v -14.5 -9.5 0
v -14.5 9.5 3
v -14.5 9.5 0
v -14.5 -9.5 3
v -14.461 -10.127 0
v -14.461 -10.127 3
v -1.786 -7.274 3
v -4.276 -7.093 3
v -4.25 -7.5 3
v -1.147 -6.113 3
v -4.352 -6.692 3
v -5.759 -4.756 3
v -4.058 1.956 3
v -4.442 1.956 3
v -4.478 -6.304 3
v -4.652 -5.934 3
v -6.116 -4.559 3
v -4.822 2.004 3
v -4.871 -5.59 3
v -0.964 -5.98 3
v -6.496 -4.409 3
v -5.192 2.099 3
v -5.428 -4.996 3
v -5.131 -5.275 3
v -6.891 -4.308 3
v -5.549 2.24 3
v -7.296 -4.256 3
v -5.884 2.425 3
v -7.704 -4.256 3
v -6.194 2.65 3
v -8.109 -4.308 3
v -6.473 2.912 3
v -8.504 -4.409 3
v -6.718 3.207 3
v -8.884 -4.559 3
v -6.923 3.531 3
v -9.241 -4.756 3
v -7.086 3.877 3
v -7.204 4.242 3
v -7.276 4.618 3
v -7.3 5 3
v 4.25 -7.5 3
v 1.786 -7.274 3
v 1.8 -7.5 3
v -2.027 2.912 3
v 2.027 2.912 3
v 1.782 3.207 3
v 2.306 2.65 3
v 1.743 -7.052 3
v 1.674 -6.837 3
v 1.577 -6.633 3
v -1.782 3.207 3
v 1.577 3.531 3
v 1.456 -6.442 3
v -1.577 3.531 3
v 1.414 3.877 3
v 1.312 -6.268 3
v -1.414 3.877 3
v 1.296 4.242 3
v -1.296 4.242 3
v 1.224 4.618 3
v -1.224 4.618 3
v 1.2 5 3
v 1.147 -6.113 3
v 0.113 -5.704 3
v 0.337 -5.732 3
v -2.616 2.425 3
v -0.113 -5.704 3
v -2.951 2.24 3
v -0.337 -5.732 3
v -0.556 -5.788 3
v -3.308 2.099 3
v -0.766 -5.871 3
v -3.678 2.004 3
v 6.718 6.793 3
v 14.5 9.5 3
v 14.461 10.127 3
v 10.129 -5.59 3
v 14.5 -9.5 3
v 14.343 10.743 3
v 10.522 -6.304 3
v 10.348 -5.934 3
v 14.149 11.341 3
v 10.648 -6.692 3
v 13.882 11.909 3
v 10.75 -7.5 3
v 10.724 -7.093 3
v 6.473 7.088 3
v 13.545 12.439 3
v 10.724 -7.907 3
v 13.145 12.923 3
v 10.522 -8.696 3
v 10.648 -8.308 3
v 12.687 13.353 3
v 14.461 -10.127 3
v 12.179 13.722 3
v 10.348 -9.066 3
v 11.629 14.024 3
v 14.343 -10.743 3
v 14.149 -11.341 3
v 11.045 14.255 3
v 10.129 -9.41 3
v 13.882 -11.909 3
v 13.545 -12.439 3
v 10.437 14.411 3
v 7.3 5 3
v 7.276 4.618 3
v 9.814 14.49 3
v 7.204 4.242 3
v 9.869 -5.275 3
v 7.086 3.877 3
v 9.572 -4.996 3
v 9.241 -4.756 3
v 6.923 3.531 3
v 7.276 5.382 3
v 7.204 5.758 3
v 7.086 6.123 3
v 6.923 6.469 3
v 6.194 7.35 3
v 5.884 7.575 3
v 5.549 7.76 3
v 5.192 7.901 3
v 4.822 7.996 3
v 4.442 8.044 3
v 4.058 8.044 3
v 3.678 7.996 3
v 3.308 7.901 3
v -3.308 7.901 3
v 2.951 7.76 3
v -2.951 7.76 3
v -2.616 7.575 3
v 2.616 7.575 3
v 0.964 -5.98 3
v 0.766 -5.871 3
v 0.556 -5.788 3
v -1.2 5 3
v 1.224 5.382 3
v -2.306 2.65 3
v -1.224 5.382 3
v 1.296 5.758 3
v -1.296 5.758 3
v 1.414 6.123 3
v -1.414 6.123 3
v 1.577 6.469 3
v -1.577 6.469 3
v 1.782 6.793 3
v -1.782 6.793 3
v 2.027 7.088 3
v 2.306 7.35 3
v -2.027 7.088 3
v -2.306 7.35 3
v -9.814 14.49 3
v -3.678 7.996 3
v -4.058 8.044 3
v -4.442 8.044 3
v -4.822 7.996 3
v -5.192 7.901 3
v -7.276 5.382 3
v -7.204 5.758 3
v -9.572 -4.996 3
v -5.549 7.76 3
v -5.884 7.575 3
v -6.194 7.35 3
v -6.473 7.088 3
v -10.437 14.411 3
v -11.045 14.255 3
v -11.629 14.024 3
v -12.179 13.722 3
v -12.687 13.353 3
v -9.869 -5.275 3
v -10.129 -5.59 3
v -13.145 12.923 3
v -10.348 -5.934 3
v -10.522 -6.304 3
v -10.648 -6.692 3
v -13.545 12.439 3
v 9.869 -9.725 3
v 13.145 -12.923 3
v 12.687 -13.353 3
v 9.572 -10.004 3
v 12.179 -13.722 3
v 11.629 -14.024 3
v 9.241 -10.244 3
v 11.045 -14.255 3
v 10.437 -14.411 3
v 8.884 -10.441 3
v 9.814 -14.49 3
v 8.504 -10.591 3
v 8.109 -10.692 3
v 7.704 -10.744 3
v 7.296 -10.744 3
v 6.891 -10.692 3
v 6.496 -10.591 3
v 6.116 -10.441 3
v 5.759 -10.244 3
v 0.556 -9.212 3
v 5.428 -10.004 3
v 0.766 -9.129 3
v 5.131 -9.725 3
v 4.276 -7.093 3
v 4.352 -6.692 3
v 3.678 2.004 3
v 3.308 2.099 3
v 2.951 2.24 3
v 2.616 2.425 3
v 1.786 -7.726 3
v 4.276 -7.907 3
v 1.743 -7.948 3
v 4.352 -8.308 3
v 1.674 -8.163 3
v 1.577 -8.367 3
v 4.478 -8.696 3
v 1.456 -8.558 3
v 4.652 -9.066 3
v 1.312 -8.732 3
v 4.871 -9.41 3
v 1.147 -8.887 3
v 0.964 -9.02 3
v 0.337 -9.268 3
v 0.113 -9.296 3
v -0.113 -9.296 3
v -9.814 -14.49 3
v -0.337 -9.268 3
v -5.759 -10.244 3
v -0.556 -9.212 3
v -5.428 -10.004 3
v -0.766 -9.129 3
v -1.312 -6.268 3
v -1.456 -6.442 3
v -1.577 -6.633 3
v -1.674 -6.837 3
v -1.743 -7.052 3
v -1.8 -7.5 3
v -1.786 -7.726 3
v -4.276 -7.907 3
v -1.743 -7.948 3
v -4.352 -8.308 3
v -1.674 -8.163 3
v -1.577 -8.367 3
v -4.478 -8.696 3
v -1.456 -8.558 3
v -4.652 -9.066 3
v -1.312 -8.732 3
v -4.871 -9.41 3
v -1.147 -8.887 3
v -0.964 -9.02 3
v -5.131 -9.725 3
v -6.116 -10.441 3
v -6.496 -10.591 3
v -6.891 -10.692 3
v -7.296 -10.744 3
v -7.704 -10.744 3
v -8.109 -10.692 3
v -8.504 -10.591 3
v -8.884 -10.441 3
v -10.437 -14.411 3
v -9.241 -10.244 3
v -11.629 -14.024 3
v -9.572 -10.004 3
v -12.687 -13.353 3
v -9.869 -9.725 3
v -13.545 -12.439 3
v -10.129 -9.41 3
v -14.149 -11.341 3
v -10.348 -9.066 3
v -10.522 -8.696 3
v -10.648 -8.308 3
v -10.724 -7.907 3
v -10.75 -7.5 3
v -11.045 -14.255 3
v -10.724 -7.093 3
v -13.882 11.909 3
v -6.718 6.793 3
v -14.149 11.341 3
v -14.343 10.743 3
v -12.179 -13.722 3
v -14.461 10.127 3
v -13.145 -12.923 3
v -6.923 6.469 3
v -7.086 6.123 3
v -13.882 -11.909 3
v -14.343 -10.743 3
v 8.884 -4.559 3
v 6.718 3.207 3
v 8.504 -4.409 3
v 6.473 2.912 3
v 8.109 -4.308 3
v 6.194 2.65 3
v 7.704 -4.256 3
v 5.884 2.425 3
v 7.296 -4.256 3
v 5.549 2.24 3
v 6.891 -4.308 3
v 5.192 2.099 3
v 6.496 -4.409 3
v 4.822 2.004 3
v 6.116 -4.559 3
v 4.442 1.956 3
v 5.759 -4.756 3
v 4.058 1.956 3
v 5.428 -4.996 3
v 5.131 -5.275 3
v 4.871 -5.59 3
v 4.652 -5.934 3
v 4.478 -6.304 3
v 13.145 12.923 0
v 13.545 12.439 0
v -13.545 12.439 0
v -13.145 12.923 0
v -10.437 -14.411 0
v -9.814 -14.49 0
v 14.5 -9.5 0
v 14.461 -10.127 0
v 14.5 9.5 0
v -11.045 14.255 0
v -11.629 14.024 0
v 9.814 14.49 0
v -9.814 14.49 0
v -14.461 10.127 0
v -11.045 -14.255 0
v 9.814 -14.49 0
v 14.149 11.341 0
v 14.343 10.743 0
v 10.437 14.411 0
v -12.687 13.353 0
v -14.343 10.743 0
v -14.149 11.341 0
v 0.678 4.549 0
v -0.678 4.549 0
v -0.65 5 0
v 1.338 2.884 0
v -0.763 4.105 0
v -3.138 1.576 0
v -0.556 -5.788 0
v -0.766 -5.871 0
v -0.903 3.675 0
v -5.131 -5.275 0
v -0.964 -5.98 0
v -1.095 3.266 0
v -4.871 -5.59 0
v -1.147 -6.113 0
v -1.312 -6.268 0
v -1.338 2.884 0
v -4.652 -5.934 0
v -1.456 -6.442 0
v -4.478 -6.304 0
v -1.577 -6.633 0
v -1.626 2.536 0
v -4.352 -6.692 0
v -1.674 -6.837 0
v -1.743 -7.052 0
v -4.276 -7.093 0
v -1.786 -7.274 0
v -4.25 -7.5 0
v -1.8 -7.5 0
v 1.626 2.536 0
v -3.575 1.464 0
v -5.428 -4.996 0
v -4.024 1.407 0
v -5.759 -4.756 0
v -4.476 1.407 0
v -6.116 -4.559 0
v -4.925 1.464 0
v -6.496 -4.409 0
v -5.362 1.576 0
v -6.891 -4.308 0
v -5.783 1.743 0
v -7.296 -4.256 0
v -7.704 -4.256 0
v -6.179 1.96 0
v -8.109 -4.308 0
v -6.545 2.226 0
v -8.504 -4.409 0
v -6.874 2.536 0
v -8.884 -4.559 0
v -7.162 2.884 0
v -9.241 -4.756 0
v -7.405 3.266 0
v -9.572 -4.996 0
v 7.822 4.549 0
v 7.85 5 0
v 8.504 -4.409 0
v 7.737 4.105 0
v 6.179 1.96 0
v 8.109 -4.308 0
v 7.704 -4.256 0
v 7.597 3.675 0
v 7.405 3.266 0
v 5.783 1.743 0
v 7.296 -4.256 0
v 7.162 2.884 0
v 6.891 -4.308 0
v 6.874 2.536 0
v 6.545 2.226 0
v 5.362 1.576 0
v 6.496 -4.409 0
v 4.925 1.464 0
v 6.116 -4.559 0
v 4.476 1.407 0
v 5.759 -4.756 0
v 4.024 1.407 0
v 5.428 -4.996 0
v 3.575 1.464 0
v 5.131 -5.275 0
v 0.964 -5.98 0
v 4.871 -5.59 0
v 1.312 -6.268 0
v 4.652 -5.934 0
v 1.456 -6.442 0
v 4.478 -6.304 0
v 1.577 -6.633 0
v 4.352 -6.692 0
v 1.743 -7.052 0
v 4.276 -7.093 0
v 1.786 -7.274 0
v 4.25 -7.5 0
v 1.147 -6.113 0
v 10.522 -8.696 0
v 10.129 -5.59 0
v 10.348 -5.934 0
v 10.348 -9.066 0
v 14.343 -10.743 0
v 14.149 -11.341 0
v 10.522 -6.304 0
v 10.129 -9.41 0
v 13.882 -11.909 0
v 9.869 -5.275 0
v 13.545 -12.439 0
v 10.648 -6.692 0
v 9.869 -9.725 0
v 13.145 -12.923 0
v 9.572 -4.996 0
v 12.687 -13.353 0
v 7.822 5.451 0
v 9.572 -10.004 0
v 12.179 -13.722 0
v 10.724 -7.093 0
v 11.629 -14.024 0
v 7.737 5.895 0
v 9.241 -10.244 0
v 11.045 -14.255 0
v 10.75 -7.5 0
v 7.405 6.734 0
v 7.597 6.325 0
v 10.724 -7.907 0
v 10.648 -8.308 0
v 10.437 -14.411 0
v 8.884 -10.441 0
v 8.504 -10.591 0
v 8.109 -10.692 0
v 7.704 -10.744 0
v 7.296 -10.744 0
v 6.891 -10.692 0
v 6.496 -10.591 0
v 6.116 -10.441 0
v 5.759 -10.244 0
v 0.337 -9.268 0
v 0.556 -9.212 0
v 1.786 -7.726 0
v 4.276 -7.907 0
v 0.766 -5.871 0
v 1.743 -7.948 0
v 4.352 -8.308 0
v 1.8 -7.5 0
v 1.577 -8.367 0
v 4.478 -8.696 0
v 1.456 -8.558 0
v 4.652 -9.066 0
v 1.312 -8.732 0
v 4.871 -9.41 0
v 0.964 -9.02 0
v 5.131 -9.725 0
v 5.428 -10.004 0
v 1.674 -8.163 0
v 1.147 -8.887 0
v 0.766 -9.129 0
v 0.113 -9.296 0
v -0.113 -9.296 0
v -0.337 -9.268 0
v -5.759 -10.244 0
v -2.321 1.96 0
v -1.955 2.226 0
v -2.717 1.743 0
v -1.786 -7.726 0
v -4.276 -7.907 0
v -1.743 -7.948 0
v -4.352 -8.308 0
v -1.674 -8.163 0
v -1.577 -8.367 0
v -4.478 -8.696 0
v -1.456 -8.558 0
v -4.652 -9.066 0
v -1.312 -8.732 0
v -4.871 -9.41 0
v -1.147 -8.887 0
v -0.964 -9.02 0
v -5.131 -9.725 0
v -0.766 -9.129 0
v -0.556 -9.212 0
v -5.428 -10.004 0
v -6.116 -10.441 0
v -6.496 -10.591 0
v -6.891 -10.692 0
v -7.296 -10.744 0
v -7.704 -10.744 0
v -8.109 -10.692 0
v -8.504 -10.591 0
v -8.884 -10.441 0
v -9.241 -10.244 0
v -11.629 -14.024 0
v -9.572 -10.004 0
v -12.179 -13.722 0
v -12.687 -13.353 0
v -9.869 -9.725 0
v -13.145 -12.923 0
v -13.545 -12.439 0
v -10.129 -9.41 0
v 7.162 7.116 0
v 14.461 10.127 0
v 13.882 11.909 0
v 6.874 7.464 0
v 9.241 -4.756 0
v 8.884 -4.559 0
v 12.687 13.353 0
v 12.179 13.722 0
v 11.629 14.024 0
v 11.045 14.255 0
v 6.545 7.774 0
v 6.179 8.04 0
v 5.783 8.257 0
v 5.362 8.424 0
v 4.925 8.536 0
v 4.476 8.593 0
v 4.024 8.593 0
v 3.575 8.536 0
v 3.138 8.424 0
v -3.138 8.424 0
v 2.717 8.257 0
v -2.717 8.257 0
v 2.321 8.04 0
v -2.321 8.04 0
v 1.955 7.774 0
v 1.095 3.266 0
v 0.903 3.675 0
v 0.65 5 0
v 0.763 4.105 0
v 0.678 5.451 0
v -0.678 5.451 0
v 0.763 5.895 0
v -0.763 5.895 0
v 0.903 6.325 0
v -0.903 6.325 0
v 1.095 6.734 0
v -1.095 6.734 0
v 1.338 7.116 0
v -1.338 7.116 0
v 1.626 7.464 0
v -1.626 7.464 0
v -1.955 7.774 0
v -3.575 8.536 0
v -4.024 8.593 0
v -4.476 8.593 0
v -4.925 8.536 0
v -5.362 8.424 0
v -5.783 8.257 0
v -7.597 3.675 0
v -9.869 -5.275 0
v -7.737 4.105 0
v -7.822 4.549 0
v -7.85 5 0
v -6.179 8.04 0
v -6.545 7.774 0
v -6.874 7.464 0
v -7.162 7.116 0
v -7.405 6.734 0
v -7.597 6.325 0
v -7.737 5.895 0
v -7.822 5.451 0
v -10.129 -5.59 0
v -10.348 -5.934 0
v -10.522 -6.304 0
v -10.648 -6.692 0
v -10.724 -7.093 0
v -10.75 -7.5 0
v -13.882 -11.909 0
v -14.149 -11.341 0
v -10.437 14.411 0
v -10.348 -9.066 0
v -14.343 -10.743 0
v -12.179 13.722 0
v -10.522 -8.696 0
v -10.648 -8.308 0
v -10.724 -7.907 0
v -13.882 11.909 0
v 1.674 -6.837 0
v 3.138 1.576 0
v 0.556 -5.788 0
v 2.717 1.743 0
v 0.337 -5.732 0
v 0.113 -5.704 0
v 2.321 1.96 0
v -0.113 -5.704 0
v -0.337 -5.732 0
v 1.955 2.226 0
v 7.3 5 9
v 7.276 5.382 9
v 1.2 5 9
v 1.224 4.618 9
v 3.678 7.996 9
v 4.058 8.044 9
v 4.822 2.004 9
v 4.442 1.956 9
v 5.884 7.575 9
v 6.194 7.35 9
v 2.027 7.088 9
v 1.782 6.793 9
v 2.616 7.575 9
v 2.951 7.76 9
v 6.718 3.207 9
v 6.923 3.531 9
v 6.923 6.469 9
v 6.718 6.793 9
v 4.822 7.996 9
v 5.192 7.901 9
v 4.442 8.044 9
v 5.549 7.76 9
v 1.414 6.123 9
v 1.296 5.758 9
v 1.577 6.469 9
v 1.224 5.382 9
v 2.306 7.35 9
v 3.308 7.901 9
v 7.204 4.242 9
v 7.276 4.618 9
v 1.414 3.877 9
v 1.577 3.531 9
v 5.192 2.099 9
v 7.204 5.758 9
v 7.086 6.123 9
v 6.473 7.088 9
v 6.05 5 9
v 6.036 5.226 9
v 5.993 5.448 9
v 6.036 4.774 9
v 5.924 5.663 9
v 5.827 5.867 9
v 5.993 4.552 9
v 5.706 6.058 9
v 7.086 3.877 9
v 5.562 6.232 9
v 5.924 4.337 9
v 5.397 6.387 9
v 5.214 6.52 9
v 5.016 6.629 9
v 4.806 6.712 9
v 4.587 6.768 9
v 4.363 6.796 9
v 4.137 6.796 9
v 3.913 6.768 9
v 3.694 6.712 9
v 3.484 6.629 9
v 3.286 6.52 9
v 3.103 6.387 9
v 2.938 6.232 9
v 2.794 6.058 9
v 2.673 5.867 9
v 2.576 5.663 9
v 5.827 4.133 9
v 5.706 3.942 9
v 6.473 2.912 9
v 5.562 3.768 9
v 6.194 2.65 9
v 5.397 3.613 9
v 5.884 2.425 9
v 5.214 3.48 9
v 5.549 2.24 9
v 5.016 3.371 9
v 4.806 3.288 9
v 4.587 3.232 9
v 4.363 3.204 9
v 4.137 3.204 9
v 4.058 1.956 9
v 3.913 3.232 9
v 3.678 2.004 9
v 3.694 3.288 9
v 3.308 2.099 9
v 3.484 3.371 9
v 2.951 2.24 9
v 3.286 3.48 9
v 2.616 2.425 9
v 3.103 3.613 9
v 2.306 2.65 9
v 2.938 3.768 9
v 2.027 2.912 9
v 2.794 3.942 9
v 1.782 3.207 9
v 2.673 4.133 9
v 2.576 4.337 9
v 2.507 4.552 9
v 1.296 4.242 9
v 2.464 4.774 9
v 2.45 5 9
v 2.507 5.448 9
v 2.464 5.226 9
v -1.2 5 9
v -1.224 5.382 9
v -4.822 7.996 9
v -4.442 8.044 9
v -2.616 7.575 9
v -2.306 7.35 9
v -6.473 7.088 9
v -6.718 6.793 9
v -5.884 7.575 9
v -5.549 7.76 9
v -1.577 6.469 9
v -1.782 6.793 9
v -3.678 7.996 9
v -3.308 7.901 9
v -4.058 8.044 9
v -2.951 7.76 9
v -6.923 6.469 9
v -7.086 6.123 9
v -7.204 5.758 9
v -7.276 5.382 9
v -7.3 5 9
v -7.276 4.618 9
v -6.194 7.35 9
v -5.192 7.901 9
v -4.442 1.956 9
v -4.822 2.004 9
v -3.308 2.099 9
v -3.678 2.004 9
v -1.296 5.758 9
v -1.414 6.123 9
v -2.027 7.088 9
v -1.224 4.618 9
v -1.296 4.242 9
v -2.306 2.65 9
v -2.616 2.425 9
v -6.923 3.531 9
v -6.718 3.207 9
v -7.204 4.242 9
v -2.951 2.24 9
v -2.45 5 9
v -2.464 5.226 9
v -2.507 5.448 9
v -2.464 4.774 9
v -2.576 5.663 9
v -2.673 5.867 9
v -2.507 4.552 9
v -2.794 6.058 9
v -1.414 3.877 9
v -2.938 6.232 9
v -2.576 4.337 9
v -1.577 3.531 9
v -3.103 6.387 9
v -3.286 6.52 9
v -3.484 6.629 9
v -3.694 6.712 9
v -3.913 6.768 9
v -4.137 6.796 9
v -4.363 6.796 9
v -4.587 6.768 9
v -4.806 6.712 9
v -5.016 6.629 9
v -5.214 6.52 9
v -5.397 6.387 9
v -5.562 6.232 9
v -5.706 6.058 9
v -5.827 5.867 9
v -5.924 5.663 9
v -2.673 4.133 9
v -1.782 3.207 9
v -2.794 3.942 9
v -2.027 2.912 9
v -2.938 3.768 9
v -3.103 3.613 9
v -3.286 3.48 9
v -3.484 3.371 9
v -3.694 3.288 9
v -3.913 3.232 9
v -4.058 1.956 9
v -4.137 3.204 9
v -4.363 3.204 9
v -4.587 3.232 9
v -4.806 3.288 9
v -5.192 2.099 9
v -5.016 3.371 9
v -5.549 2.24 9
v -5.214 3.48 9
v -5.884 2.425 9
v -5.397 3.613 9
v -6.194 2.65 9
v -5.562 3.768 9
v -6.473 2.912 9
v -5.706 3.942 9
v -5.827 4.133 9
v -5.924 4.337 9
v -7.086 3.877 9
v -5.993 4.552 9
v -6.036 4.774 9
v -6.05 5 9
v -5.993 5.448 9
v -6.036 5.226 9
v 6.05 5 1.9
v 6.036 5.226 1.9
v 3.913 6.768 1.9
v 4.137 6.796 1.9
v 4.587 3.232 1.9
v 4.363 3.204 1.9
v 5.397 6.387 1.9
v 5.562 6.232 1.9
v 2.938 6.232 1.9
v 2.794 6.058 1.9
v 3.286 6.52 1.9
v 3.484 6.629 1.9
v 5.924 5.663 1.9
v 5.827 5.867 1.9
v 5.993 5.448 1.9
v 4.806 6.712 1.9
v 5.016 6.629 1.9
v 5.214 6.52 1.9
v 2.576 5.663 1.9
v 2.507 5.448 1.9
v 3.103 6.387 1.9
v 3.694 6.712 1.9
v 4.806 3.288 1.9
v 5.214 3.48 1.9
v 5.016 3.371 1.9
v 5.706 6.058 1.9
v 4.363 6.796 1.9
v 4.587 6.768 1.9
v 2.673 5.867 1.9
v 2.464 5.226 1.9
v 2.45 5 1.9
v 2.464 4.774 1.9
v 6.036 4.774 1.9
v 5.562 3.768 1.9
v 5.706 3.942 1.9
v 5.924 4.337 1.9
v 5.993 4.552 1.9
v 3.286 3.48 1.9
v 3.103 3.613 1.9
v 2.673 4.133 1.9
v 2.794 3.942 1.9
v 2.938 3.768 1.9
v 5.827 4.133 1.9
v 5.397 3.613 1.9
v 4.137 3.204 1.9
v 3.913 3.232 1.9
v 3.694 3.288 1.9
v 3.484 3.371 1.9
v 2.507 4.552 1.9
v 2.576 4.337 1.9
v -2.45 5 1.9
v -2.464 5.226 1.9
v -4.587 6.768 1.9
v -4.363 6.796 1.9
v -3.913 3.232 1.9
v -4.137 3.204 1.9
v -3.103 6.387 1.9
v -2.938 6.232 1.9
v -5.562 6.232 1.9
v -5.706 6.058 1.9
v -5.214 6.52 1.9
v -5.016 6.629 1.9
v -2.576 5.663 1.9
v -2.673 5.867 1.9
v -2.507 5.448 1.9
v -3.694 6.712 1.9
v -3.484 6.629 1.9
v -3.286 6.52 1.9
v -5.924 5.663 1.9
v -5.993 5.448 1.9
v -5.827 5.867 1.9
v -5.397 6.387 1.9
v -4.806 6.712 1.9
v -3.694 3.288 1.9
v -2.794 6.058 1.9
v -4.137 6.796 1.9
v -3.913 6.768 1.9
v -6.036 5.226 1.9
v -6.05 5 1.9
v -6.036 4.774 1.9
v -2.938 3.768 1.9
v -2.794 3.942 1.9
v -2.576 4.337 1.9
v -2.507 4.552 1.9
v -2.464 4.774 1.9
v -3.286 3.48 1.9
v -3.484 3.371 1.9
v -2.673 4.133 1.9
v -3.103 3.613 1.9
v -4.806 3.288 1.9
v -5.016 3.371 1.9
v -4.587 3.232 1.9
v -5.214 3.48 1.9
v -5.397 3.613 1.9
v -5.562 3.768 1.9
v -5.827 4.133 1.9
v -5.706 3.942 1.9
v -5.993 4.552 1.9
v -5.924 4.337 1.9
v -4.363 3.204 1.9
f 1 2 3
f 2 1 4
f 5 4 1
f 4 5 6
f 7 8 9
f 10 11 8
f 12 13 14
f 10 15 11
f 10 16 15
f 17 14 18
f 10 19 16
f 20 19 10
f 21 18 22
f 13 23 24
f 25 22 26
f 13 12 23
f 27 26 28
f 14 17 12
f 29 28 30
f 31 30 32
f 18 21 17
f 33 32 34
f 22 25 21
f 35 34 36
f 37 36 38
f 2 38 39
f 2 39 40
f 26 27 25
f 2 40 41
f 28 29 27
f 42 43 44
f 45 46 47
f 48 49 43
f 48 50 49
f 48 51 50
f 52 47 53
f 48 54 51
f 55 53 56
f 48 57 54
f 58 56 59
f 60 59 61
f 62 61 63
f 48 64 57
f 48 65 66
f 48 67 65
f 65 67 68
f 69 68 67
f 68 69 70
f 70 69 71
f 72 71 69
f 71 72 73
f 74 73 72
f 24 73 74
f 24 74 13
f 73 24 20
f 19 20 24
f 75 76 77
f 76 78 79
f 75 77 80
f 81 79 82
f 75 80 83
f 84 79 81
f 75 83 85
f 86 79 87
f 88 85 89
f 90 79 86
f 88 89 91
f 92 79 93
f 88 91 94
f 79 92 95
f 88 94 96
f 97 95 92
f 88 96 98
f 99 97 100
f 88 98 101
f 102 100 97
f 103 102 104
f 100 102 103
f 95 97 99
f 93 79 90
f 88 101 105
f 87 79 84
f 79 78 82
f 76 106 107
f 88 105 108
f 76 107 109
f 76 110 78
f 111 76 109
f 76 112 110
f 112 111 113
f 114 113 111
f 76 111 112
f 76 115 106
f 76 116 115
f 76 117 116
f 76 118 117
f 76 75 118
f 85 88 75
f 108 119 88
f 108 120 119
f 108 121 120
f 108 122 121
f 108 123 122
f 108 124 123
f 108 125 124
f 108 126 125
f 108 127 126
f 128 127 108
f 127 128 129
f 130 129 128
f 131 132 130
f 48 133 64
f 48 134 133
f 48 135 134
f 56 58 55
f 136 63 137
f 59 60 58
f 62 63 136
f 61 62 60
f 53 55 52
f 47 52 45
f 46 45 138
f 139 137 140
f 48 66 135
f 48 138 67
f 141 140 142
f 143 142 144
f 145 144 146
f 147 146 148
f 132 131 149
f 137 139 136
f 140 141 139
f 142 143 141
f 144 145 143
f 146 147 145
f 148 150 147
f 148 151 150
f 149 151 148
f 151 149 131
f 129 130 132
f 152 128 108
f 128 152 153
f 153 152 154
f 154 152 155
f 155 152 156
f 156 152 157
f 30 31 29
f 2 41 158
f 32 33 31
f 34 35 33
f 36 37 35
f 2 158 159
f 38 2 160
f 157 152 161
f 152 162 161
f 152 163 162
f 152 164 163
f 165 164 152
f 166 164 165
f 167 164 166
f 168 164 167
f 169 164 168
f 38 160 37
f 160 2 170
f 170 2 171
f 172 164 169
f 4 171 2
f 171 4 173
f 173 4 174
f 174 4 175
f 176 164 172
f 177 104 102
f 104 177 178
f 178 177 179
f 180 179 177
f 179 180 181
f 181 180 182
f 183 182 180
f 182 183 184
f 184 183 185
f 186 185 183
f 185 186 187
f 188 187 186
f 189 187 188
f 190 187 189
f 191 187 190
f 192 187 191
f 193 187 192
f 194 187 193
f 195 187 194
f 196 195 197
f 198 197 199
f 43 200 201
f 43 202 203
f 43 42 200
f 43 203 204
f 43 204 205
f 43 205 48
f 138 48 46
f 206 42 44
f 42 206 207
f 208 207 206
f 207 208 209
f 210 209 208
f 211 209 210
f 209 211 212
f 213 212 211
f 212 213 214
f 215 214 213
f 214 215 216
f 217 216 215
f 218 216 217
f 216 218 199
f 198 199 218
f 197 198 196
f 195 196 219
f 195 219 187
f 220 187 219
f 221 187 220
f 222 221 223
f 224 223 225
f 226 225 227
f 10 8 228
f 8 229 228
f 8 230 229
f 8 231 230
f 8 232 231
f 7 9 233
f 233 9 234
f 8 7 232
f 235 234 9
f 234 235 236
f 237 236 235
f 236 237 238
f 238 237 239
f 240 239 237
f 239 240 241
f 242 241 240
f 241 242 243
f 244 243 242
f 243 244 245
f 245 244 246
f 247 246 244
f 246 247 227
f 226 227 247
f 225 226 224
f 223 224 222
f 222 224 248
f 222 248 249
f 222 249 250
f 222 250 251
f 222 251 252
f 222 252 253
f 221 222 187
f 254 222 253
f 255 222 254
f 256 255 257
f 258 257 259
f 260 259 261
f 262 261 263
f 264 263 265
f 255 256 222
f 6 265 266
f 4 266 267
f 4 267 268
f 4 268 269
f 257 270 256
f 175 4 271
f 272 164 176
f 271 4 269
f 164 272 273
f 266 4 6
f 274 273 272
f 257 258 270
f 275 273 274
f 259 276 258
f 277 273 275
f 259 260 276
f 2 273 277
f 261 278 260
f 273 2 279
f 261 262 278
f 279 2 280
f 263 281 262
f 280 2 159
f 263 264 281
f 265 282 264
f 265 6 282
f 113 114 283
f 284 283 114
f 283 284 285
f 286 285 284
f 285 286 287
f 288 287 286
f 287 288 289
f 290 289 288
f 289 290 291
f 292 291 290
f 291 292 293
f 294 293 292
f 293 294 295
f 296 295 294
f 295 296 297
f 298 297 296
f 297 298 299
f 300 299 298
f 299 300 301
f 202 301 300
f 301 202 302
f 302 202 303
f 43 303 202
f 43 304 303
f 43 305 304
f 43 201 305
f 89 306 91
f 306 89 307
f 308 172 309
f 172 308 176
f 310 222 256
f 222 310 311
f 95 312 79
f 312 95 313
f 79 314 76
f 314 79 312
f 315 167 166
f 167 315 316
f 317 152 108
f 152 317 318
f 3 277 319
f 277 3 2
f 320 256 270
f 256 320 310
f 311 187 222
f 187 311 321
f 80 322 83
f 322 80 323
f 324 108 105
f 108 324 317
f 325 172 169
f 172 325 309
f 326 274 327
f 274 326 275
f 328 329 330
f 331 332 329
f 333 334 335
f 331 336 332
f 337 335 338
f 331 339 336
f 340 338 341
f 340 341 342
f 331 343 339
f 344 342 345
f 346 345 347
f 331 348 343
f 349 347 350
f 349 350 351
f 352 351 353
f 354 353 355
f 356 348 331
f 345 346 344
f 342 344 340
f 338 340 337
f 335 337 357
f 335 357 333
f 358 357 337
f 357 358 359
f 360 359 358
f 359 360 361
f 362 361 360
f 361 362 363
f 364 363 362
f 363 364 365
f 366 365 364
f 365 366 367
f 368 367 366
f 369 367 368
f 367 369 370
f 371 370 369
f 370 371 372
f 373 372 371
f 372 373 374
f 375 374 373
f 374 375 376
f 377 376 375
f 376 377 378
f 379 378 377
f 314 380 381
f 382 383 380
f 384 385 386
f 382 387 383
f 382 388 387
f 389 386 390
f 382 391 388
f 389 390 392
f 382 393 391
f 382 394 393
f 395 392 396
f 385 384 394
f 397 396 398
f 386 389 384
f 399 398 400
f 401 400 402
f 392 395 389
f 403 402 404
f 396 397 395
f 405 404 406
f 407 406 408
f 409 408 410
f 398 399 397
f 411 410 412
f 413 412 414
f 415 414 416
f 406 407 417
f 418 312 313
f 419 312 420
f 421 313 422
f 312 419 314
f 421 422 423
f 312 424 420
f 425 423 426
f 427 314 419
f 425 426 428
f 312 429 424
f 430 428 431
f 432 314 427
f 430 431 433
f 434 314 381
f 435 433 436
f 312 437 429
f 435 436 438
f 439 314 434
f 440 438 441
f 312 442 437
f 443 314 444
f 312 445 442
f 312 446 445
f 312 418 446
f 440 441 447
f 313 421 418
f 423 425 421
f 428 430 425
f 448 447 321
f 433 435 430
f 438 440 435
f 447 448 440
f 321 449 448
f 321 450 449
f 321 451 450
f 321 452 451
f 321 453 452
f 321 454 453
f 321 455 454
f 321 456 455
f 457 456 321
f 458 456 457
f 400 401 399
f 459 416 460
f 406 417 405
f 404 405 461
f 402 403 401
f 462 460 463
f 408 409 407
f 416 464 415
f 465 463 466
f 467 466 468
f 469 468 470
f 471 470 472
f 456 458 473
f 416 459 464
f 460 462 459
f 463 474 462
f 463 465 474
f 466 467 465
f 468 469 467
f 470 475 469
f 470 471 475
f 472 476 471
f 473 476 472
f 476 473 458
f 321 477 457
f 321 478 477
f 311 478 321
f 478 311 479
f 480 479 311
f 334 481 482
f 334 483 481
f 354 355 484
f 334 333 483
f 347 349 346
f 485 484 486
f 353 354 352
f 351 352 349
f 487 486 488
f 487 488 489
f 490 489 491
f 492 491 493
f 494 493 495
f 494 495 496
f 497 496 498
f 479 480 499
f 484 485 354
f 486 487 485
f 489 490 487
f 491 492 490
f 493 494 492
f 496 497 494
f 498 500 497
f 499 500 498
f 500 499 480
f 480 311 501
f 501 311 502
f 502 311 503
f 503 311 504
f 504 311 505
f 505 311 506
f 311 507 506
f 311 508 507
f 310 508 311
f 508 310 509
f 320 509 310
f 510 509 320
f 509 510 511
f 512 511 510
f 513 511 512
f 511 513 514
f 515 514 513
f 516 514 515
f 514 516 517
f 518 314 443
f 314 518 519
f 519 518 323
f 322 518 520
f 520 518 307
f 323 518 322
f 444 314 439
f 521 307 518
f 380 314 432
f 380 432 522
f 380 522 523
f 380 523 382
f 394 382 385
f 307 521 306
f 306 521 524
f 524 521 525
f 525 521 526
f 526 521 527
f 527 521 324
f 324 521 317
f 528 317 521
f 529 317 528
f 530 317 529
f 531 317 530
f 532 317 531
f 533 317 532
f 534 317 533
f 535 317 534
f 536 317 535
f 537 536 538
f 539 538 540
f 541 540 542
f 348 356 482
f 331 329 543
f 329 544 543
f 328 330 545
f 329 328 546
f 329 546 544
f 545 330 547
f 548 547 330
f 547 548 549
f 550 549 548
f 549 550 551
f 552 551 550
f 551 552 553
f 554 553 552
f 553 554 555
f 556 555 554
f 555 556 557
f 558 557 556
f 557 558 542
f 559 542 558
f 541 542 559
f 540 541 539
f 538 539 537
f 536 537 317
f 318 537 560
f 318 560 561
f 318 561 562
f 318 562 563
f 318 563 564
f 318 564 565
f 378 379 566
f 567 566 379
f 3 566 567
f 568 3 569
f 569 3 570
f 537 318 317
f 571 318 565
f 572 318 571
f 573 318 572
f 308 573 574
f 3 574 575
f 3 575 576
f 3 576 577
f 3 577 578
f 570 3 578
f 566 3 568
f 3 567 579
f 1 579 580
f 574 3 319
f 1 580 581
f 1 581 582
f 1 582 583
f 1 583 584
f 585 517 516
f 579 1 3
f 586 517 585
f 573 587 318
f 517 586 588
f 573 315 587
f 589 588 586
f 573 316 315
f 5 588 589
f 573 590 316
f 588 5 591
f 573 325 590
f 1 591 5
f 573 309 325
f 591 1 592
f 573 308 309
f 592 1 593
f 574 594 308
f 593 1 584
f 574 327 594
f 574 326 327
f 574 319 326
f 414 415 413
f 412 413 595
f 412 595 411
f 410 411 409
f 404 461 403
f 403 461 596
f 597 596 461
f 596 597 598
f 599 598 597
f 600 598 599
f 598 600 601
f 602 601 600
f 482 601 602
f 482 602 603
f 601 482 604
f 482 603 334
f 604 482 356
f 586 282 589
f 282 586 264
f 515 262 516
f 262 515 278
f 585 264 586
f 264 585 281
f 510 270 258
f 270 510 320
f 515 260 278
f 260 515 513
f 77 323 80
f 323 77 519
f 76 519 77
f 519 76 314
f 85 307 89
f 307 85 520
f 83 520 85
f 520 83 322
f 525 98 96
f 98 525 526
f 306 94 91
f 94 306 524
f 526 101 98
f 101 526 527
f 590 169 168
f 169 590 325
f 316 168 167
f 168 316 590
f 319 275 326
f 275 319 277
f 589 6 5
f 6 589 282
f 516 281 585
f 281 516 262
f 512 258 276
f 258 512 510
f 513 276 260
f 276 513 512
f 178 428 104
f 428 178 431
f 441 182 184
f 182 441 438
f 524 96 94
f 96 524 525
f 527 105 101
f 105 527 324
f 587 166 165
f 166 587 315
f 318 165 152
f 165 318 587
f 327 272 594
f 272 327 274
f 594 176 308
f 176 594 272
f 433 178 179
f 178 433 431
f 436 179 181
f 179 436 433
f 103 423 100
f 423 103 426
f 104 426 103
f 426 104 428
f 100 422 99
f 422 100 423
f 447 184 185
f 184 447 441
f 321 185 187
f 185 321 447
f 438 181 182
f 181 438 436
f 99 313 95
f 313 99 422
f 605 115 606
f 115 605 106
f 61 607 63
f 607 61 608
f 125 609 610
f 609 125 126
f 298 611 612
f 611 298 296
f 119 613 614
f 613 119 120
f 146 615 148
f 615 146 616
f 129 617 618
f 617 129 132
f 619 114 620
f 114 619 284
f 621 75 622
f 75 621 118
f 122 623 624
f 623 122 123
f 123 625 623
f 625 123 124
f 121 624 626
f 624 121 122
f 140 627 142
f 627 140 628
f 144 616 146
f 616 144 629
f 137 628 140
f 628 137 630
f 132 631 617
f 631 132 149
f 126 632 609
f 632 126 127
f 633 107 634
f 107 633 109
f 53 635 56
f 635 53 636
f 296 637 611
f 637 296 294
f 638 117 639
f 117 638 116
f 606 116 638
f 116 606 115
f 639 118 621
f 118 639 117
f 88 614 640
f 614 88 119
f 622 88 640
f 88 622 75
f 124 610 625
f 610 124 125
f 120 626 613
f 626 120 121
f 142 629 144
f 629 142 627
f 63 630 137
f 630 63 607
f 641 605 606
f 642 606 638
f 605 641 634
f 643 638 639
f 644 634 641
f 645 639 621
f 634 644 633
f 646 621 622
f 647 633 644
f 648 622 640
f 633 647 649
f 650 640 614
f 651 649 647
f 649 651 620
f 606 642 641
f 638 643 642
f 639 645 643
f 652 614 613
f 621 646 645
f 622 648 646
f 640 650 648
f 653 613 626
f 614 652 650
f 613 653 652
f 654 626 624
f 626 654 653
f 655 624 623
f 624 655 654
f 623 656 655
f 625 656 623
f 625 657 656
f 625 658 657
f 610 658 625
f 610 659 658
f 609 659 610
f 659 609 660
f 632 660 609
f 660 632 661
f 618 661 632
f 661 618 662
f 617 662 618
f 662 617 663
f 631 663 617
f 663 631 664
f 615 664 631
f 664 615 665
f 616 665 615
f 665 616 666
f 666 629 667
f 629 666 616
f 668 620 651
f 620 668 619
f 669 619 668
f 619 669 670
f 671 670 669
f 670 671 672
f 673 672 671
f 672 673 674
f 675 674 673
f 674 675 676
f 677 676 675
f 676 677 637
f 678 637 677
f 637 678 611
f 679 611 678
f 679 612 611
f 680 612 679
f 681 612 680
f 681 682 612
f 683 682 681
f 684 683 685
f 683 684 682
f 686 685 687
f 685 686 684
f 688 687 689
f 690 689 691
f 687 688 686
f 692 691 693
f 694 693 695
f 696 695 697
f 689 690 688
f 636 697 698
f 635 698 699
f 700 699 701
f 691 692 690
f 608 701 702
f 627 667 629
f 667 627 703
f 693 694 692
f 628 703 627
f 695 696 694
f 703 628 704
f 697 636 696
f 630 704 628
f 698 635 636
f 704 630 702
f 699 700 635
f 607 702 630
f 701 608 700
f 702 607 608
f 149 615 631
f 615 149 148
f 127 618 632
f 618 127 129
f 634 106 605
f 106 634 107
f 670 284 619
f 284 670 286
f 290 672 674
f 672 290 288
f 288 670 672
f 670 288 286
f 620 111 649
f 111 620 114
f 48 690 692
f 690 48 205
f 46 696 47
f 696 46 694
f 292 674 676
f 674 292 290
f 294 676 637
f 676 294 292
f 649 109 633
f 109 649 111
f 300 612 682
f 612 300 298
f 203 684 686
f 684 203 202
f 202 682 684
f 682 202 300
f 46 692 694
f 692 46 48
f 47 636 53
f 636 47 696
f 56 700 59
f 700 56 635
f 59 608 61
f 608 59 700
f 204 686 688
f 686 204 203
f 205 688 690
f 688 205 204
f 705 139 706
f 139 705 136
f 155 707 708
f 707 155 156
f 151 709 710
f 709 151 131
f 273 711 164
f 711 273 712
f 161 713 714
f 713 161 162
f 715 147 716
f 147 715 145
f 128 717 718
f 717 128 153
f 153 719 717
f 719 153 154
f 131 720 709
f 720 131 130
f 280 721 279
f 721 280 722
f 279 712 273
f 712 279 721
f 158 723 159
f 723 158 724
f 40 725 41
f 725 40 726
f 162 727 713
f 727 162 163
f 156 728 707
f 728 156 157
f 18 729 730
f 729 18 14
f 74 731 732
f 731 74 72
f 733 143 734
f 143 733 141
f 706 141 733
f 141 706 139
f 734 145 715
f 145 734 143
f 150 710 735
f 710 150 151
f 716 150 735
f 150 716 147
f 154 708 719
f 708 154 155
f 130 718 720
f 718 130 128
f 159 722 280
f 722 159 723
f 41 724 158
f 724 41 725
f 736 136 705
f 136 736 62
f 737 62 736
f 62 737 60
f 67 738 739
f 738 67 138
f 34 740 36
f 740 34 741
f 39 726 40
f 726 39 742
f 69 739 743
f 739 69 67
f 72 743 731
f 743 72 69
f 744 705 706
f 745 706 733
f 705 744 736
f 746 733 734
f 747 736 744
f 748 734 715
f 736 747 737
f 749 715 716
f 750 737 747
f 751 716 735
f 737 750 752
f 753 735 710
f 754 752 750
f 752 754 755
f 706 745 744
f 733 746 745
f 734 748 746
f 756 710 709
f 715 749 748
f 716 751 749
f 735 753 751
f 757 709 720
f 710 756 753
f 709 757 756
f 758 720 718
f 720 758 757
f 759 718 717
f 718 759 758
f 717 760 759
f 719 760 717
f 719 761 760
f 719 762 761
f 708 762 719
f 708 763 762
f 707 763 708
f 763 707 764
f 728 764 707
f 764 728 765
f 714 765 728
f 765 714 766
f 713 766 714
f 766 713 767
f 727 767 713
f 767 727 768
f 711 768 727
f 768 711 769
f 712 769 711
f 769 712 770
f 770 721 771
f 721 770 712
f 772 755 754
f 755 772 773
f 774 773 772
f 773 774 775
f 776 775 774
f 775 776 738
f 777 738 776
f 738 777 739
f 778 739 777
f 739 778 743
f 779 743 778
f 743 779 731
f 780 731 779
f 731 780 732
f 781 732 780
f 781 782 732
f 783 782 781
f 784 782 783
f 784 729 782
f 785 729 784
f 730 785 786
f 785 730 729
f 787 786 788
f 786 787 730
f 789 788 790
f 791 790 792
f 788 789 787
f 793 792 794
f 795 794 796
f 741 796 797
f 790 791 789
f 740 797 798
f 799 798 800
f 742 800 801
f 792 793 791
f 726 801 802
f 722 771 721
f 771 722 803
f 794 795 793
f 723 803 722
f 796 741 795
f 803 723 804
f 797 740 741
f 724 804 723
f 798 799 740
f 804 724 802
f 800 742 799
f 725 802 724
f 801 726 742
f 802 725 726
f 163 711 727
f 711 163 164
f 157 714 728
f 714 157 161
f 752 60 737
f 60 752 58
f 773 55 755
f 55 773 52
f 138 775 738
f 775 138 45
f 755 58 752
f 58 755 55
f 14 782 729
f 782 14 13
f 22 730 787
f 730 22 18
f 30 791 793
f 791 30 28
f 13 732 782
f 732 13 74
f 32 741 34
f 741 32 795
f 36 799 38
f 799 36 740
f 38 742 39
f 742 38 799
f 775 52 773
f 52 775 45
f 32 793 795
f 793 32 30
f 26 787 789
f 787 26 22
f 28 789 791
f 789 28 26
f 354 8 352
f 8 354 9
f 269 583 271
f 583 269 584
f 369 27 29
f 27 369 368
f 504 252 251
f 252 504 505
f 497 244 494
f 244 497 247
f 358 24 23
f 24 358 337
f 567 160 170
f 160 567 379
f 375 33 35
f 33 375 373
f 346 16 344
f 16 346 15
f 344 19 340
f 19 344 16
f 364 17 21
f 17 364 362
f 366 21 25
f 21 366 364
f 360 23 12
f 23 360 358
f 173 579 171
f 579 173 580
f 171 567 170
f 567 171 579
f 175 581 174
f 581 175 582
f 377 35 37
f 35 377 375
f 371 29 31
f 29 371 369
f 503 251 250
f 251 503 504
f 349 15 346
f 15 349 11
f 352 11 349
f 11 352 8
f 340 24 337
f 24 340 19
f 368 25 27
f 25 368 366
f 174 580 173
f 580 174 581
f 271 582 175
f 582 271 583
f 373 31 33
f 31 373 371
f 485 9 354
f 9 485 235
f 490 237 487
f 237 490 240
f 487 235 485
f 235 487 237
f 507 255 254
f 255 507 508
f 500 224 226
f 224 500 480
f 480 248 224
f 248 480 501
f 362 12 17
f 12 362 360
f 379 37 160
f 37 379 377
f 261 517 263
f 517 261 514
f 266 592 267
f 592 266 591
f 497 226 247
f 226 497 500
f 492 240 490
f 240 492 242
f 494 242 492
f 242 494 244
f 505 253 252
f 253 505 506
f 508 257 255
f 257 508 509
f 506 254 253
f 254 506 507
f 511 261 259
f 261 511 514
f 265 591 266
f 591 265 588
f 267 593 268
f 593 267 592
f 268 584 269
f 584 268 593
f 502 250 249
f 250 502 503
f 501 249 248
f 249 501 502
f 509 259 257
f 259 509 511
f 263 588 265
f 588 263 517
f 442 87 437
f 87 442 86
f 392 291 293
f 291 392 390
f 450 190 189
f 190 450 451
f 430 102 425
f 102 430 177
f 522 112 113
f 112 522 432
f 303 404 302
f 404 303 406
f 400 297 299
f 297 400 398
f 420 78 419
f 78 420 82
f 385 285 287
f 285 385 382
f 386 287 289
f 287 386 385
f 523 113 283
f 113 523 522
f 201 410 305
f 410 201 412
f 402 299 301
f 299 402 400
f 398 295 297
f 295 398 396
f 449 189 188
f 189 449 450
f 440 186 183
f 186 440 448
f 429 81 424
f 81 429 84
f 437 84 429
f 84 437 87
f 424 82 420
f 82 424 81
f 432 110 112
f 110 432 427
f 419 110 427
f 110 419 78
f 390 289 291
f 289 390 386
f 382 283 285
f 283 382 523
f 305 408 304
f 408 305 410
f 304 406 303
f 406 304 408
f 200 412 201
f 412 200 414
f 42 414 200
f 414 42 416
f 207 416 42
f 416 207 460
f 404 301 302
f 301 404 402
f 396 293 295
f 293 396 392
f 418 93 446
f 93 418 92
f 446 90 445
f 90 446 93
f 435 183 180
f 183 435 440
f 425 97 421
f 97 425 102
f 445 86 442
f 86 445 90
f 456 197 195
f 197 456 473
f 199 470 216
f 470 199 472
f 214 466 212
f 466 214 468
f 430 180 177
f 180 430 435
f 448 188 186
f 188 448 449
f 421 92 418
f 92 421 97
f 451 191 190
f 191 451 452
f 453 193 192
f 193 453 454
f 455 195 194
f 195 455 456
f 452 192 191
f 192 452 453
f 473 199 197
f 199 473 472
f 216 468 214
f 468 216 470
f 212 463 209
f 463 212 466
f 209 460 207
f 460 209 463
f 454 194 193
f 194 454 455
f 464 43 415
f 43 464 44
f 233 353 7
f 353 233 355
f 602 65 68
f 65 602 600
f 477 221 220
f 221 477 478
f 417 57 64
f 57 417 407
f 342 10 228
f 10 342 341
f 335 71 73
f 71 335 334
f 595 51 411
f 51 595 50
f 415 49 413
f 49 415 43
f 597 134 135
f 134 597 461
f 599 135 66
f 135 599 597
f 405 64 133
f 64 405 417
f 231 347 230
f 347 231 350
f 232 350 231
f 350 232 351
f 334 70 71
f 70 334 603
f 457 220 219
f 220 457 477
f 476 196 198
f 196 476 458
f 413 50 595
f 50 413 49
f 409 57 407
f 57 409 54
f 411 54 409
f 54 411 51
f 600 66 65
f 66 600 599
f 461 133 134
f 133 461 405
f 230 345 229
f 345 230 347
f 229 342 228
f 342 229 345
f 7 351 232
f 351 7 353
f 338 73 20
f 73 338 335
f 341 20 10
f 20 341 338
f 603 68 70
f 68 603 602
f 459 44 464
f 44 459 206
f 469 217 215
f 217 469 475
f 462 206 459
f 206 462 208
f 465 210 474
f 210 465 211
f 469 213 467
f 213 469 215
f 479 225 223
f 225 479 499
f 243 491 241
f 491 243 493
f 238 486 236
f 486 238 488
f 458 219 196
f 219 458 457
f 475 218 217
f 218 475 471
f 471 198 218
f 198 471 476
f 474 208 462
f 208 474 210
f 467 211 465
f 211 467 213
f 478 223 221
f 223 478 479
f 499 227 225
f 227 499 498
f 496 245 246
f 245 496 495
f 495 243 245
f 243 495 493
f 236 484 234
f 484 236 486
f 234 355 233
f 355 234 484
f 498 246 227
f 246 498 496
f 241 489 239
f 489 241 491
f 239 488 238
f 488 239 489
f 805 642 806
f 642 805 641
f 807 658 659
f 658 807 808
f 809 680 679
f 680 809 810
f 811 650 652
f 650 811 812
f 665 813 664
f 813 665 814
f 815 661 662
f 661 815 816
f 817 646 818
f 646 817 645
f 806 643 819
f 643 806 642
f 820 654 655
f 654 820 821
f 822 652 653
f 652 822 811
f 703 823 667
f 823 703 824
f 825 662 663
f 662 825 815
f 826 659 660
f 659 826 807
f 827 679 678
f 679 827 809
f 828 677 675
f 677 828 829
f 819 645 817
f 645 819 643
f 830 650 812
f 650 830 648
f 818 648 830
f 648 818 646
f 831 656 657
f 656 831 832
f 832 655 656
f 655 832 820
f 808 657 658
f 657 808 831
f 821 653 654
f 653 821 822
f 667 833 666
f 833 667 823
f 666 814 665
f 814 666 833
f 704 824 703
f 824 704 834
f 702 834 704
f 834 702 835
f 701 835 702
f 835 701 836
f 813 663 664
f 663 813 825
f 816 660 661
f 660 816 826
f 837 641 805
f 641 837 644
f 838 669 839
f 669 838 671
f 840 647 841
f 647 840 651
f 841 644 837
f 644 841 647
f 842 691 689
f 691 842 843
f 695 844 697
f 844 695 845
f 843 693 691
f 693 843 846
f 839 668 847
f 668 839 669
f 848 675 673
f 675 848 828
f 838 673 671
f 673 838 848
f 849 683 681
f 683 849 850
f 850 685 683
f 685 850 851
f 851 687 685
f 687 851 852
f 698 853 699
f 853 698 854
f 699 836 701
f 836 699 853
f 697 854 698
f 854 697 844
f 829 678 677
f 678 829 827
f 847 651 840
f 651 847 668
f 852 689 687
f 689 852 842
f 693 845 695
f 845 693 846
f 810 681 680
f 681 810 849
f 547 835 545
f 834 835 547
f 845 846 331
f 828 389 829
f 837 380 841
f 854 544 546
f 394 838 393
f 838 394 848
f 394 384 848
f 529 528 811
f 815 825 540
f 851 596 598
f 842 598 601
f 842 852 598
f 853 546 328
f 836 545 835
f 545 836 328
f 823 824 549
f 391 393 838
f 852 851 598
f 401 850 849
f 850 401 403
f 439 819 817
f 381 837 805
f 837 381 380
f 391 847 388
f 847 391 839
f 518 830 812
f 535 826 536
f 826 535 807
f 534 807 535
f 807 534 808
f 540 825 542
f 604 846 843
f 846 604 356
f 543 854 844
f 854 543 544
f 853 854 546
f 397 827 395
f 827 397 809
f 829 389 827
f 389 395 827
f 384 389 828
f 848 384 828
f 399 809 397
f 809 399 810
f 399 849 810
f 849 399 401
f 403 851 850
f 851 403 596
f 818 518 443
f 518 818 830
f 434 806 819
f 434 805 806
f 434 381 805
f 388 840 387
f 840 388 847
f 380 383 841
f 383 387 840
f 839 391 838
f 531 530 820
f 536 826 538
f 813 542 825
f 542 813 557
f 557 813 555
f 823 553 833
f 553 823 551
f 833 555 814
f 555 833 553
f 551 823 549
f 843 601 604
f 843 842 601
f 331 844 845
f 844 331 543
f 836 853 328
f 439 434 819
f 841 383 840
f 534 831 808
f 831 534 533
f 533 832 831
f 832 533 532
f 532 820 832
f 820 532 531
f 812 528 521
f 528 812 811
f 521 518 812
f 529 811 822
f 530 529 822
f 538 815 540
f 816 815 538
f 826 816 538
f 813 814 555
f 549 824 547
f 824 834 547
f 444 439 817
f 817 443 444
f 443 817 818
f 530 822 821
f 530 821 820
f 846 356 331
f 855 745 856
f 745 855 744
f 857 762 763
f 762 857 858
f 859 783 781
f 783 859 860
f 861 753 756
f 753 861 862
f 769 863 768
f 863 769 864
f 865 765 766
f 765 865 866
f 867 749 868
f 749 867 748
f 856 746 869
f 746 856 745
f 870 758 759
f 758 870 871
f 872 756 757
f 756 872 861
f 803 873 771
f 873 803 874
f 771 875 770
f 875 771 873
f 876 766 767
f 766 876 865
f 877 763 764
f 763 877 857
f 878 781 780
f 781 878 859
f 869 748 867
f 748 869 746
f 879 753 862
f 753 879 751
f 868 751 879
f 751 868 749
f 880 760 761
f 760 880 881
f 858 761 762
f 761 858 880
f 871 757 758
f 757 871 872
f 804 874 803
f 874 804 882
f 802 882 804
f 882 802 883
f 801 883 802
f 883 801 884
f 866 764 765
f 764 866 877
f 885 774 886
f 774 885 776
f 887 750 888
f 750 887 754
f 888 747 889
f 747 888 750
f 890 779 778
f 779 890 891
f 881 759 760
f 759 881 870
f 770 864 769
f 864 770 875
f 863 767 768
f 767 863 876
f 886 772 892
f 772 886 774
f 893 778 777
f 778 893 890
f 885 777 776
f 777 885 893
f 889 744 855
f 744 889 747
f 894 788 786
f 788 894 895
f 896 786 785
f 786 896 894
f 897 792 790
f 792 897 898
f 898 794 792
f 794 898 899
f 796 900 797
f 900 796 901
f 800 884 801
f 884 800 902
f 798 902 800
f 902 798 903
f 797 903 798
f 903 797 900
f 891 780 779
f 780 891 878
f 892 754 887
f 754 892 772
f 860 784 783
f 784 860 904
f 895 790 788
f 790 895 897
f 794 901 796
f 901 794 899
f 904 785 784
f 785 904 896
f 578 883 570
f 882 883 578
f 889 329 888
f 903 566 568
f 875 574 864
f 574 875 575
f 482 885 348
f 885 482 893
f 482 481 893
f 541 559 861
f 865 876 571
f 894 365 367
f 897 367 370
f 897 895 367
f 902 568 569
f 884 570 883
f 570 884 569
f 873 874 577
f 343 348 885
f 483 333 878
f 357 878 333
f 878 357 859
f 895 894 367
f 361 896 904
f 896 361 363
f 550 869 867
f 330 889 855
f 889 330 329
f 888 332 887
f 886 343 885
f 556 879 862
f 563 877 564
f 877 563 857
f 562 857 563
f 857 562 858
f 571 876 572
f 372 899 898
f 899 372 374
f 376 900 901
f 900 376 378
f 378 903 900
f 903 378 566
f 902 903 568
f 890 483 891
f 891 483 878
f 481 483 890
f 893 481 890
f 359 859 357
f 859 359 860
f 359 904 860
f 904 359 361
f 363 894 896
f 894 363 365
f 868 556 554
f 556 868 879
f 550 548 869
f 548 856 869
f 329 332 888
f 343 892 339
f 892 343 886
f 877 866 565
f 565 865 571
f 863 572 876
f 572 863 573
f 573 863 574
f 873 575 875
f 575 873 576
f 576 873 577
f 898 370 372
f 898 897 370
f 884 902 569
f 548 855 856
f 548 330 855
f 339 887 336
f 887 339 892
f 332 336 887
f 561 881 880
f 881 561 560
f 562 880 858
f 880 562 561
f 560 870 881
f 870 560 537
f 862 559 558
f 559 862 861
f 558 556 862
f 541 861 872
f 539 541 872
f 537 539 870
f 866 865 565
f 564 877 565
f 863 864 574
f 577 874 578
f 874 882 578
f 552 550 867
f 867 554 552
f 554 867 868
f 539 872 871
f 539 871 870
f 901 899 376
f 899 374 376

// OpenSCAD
$fn = 50;


difference() {
	union() {
		translate(v = [0, 0, 0]) {
			rotate(a = [0, 0, 0]) {
				hull() {
					translate(v = [-9.5000000000, 9.5000000000, 0]) {
						rotate(a = [0, 0, 0]) {
							translate(v = [0, 0, 0]) {
								rotate(a = [0, 0, 0]) {
									cylinder(h = 3, r = 5);
								}
							}
						}
					}
					translate(v = [9.5000000000, 9.5000000000, 0]) {
						rotate(a = [0, 0, 0]) {
							translate(v = [0, 0, 0]) {
								rotate(a = [0, 0, 0]) {
									cylinder(h = 3, r = 5);
								}
							}
						}
					}
					translate(v = [-9.5000000000, -9.5000000000, 0]) {
						rotate(a = [0, 0, 0]) {
							translate(v = [0, 0, 0]) {
								rotate(a = [0, 0, 0]) {
									cylinder(h = 3, r = 5);
								}
							}
						}
					}
					translate(v = [9.5000000000, -9.5000000000, 0]) {
						rotate(a = [0, 0, 0]) {
							translate(v = [0, 0, 0]) {
								rotate(a = [0, 0, 0]) {
									cylinder(h = 3, r = 5);
								}
							}
						}
					}
				}
			}
		}
		translate(v = [4.2500000000, 5.0000000000, 0]) {
			rotate(a = [0, 0, 0]) {
				cylinder(h = 9, r = 3.0500000000);
			}
		}
		translate(v = [-4.2500000000, 5.0000000000, 0]) {
			rotate(a = [0, 0, 0]) {
				cylinder(h = 9, r = 3.0500000000);
			}
		}
	}
	union() {
		translate(v = [-7.5000000000, -7.5000000000, -125.0000000000]) {
			rotate(a = [0, 0, 0]) {
				cylinder(h = 250, r = 3.2500000000);
			}
		}
		translate(v = [7.5000000000, -7.5000000000, -125.0000000000]) {
			rotate(a = [0, 0, 0]) {
				cylinder(h = 250, r = 3.2500000000);
			}
		}
		translate(v = [-7.5000000000, -7.5000000000, -125.0000000000]) {
			rotate(a = [0, 0, 0]) {
				cylinder(h = 250, r = 1.8000000000);
			}
		}
		translate(v = [0.0000000000, -7.5000000000, -125.0000000000]) {
			rotate(a = [0, 0, 0]) {
				cylinder(h = 250, r = 1.8000000000);
			}
		}
		translate(v = [7.5000000000, -7.5000000000, -125.0000000000]) {
			rotate(a = [0, 0, 0]) {
				cylinder(h = 250, r = 1.8000000000);
			}
		}
		translate(v = [-7.5000000000, -7.5000000000, -125.0000000000]) {
			rotate(a = [0, 0, 0]) {
				cylinder(h = 250, r = 1.8000000000);
			}
		}
		translate(v = [0.0000000000, -7.5000000000, -125.0000000000]) {
			rotate(a = [0, 0, 0]) {
				cylinder(h = 250, r = 1.8000000000);
			}
		}
		translate(v = [7.5000000000, -7.5000000000, -125.0000000000]) {
			rotate(a = [0, 0, 0]) {
				cylinder(h = 250, r = 1.8000000000);
			}
		}
		translate(v = [-7.5000000000, -7.5000000000, -125.0000000000]) {
			rotate(a = [0, 0, 0]) {
				cylinder(h = 250, r = 1.8000000000);
			}
		}
		translate(v = [0.0000000000, -7.5000000000, -125.0000000000]) {
			rotate(a = [0, 0, 0]) {
				cylinder(h = 250, r = 1.8000000000);
			}
		}
		translate(v = [7.5000000000, -7.5000000000, -125.0000000000]) {
			rotate(a = [0, 0, 0]) {
				cylinder(h = 250, r = 1.8000000000);
			}
		}
		translate(v = [4.2500000000, 5.0000000000, -125.0000000000]) {
			rotate(a = [0, 0, 0]) {
				cylinder(h = 250, r = 1.8000000000);
			}
		}
		translate(v = [4.2500000000, 5.0000000000, 1.9000000000]) {
			rotate(a = [0, 180, 0]) {
				cylinder(h = 1.9000000000, r1 = 1.8000000000, r2 = 3.6000000000);
			}
		}
		translate(v = [4.2500000000, 5.0000000000, 9]) {
			rotate(a = [0, 180, 0]) {
				cylinder(h = 9, r = 1.8000000000);
			}
		}
		translate(v = [-4.2500000000, 5.0000000000, -125.0000000000]) {
			rotate(a = [0, 0, 0]) {
				cylinder(h = 250, r = 1.8000000000);
			}
		}
		translate(v = [-4.2500000000, 5.0000000000, 1.9000000000]) {
			rotate(a = [0, 180, 0]) {
				cylinder(h = 1.9000000000, r1 = 1.8000000000, r2 = 3.6000000000);
			}
		}
		translate(v = [-4.2500000000, 5.0000000000, 9]) {
			rotate(a = [0, 180, 0]) {
				cylinder(h = 9, r = 1.8000000000);
			}
		}
	}
}
